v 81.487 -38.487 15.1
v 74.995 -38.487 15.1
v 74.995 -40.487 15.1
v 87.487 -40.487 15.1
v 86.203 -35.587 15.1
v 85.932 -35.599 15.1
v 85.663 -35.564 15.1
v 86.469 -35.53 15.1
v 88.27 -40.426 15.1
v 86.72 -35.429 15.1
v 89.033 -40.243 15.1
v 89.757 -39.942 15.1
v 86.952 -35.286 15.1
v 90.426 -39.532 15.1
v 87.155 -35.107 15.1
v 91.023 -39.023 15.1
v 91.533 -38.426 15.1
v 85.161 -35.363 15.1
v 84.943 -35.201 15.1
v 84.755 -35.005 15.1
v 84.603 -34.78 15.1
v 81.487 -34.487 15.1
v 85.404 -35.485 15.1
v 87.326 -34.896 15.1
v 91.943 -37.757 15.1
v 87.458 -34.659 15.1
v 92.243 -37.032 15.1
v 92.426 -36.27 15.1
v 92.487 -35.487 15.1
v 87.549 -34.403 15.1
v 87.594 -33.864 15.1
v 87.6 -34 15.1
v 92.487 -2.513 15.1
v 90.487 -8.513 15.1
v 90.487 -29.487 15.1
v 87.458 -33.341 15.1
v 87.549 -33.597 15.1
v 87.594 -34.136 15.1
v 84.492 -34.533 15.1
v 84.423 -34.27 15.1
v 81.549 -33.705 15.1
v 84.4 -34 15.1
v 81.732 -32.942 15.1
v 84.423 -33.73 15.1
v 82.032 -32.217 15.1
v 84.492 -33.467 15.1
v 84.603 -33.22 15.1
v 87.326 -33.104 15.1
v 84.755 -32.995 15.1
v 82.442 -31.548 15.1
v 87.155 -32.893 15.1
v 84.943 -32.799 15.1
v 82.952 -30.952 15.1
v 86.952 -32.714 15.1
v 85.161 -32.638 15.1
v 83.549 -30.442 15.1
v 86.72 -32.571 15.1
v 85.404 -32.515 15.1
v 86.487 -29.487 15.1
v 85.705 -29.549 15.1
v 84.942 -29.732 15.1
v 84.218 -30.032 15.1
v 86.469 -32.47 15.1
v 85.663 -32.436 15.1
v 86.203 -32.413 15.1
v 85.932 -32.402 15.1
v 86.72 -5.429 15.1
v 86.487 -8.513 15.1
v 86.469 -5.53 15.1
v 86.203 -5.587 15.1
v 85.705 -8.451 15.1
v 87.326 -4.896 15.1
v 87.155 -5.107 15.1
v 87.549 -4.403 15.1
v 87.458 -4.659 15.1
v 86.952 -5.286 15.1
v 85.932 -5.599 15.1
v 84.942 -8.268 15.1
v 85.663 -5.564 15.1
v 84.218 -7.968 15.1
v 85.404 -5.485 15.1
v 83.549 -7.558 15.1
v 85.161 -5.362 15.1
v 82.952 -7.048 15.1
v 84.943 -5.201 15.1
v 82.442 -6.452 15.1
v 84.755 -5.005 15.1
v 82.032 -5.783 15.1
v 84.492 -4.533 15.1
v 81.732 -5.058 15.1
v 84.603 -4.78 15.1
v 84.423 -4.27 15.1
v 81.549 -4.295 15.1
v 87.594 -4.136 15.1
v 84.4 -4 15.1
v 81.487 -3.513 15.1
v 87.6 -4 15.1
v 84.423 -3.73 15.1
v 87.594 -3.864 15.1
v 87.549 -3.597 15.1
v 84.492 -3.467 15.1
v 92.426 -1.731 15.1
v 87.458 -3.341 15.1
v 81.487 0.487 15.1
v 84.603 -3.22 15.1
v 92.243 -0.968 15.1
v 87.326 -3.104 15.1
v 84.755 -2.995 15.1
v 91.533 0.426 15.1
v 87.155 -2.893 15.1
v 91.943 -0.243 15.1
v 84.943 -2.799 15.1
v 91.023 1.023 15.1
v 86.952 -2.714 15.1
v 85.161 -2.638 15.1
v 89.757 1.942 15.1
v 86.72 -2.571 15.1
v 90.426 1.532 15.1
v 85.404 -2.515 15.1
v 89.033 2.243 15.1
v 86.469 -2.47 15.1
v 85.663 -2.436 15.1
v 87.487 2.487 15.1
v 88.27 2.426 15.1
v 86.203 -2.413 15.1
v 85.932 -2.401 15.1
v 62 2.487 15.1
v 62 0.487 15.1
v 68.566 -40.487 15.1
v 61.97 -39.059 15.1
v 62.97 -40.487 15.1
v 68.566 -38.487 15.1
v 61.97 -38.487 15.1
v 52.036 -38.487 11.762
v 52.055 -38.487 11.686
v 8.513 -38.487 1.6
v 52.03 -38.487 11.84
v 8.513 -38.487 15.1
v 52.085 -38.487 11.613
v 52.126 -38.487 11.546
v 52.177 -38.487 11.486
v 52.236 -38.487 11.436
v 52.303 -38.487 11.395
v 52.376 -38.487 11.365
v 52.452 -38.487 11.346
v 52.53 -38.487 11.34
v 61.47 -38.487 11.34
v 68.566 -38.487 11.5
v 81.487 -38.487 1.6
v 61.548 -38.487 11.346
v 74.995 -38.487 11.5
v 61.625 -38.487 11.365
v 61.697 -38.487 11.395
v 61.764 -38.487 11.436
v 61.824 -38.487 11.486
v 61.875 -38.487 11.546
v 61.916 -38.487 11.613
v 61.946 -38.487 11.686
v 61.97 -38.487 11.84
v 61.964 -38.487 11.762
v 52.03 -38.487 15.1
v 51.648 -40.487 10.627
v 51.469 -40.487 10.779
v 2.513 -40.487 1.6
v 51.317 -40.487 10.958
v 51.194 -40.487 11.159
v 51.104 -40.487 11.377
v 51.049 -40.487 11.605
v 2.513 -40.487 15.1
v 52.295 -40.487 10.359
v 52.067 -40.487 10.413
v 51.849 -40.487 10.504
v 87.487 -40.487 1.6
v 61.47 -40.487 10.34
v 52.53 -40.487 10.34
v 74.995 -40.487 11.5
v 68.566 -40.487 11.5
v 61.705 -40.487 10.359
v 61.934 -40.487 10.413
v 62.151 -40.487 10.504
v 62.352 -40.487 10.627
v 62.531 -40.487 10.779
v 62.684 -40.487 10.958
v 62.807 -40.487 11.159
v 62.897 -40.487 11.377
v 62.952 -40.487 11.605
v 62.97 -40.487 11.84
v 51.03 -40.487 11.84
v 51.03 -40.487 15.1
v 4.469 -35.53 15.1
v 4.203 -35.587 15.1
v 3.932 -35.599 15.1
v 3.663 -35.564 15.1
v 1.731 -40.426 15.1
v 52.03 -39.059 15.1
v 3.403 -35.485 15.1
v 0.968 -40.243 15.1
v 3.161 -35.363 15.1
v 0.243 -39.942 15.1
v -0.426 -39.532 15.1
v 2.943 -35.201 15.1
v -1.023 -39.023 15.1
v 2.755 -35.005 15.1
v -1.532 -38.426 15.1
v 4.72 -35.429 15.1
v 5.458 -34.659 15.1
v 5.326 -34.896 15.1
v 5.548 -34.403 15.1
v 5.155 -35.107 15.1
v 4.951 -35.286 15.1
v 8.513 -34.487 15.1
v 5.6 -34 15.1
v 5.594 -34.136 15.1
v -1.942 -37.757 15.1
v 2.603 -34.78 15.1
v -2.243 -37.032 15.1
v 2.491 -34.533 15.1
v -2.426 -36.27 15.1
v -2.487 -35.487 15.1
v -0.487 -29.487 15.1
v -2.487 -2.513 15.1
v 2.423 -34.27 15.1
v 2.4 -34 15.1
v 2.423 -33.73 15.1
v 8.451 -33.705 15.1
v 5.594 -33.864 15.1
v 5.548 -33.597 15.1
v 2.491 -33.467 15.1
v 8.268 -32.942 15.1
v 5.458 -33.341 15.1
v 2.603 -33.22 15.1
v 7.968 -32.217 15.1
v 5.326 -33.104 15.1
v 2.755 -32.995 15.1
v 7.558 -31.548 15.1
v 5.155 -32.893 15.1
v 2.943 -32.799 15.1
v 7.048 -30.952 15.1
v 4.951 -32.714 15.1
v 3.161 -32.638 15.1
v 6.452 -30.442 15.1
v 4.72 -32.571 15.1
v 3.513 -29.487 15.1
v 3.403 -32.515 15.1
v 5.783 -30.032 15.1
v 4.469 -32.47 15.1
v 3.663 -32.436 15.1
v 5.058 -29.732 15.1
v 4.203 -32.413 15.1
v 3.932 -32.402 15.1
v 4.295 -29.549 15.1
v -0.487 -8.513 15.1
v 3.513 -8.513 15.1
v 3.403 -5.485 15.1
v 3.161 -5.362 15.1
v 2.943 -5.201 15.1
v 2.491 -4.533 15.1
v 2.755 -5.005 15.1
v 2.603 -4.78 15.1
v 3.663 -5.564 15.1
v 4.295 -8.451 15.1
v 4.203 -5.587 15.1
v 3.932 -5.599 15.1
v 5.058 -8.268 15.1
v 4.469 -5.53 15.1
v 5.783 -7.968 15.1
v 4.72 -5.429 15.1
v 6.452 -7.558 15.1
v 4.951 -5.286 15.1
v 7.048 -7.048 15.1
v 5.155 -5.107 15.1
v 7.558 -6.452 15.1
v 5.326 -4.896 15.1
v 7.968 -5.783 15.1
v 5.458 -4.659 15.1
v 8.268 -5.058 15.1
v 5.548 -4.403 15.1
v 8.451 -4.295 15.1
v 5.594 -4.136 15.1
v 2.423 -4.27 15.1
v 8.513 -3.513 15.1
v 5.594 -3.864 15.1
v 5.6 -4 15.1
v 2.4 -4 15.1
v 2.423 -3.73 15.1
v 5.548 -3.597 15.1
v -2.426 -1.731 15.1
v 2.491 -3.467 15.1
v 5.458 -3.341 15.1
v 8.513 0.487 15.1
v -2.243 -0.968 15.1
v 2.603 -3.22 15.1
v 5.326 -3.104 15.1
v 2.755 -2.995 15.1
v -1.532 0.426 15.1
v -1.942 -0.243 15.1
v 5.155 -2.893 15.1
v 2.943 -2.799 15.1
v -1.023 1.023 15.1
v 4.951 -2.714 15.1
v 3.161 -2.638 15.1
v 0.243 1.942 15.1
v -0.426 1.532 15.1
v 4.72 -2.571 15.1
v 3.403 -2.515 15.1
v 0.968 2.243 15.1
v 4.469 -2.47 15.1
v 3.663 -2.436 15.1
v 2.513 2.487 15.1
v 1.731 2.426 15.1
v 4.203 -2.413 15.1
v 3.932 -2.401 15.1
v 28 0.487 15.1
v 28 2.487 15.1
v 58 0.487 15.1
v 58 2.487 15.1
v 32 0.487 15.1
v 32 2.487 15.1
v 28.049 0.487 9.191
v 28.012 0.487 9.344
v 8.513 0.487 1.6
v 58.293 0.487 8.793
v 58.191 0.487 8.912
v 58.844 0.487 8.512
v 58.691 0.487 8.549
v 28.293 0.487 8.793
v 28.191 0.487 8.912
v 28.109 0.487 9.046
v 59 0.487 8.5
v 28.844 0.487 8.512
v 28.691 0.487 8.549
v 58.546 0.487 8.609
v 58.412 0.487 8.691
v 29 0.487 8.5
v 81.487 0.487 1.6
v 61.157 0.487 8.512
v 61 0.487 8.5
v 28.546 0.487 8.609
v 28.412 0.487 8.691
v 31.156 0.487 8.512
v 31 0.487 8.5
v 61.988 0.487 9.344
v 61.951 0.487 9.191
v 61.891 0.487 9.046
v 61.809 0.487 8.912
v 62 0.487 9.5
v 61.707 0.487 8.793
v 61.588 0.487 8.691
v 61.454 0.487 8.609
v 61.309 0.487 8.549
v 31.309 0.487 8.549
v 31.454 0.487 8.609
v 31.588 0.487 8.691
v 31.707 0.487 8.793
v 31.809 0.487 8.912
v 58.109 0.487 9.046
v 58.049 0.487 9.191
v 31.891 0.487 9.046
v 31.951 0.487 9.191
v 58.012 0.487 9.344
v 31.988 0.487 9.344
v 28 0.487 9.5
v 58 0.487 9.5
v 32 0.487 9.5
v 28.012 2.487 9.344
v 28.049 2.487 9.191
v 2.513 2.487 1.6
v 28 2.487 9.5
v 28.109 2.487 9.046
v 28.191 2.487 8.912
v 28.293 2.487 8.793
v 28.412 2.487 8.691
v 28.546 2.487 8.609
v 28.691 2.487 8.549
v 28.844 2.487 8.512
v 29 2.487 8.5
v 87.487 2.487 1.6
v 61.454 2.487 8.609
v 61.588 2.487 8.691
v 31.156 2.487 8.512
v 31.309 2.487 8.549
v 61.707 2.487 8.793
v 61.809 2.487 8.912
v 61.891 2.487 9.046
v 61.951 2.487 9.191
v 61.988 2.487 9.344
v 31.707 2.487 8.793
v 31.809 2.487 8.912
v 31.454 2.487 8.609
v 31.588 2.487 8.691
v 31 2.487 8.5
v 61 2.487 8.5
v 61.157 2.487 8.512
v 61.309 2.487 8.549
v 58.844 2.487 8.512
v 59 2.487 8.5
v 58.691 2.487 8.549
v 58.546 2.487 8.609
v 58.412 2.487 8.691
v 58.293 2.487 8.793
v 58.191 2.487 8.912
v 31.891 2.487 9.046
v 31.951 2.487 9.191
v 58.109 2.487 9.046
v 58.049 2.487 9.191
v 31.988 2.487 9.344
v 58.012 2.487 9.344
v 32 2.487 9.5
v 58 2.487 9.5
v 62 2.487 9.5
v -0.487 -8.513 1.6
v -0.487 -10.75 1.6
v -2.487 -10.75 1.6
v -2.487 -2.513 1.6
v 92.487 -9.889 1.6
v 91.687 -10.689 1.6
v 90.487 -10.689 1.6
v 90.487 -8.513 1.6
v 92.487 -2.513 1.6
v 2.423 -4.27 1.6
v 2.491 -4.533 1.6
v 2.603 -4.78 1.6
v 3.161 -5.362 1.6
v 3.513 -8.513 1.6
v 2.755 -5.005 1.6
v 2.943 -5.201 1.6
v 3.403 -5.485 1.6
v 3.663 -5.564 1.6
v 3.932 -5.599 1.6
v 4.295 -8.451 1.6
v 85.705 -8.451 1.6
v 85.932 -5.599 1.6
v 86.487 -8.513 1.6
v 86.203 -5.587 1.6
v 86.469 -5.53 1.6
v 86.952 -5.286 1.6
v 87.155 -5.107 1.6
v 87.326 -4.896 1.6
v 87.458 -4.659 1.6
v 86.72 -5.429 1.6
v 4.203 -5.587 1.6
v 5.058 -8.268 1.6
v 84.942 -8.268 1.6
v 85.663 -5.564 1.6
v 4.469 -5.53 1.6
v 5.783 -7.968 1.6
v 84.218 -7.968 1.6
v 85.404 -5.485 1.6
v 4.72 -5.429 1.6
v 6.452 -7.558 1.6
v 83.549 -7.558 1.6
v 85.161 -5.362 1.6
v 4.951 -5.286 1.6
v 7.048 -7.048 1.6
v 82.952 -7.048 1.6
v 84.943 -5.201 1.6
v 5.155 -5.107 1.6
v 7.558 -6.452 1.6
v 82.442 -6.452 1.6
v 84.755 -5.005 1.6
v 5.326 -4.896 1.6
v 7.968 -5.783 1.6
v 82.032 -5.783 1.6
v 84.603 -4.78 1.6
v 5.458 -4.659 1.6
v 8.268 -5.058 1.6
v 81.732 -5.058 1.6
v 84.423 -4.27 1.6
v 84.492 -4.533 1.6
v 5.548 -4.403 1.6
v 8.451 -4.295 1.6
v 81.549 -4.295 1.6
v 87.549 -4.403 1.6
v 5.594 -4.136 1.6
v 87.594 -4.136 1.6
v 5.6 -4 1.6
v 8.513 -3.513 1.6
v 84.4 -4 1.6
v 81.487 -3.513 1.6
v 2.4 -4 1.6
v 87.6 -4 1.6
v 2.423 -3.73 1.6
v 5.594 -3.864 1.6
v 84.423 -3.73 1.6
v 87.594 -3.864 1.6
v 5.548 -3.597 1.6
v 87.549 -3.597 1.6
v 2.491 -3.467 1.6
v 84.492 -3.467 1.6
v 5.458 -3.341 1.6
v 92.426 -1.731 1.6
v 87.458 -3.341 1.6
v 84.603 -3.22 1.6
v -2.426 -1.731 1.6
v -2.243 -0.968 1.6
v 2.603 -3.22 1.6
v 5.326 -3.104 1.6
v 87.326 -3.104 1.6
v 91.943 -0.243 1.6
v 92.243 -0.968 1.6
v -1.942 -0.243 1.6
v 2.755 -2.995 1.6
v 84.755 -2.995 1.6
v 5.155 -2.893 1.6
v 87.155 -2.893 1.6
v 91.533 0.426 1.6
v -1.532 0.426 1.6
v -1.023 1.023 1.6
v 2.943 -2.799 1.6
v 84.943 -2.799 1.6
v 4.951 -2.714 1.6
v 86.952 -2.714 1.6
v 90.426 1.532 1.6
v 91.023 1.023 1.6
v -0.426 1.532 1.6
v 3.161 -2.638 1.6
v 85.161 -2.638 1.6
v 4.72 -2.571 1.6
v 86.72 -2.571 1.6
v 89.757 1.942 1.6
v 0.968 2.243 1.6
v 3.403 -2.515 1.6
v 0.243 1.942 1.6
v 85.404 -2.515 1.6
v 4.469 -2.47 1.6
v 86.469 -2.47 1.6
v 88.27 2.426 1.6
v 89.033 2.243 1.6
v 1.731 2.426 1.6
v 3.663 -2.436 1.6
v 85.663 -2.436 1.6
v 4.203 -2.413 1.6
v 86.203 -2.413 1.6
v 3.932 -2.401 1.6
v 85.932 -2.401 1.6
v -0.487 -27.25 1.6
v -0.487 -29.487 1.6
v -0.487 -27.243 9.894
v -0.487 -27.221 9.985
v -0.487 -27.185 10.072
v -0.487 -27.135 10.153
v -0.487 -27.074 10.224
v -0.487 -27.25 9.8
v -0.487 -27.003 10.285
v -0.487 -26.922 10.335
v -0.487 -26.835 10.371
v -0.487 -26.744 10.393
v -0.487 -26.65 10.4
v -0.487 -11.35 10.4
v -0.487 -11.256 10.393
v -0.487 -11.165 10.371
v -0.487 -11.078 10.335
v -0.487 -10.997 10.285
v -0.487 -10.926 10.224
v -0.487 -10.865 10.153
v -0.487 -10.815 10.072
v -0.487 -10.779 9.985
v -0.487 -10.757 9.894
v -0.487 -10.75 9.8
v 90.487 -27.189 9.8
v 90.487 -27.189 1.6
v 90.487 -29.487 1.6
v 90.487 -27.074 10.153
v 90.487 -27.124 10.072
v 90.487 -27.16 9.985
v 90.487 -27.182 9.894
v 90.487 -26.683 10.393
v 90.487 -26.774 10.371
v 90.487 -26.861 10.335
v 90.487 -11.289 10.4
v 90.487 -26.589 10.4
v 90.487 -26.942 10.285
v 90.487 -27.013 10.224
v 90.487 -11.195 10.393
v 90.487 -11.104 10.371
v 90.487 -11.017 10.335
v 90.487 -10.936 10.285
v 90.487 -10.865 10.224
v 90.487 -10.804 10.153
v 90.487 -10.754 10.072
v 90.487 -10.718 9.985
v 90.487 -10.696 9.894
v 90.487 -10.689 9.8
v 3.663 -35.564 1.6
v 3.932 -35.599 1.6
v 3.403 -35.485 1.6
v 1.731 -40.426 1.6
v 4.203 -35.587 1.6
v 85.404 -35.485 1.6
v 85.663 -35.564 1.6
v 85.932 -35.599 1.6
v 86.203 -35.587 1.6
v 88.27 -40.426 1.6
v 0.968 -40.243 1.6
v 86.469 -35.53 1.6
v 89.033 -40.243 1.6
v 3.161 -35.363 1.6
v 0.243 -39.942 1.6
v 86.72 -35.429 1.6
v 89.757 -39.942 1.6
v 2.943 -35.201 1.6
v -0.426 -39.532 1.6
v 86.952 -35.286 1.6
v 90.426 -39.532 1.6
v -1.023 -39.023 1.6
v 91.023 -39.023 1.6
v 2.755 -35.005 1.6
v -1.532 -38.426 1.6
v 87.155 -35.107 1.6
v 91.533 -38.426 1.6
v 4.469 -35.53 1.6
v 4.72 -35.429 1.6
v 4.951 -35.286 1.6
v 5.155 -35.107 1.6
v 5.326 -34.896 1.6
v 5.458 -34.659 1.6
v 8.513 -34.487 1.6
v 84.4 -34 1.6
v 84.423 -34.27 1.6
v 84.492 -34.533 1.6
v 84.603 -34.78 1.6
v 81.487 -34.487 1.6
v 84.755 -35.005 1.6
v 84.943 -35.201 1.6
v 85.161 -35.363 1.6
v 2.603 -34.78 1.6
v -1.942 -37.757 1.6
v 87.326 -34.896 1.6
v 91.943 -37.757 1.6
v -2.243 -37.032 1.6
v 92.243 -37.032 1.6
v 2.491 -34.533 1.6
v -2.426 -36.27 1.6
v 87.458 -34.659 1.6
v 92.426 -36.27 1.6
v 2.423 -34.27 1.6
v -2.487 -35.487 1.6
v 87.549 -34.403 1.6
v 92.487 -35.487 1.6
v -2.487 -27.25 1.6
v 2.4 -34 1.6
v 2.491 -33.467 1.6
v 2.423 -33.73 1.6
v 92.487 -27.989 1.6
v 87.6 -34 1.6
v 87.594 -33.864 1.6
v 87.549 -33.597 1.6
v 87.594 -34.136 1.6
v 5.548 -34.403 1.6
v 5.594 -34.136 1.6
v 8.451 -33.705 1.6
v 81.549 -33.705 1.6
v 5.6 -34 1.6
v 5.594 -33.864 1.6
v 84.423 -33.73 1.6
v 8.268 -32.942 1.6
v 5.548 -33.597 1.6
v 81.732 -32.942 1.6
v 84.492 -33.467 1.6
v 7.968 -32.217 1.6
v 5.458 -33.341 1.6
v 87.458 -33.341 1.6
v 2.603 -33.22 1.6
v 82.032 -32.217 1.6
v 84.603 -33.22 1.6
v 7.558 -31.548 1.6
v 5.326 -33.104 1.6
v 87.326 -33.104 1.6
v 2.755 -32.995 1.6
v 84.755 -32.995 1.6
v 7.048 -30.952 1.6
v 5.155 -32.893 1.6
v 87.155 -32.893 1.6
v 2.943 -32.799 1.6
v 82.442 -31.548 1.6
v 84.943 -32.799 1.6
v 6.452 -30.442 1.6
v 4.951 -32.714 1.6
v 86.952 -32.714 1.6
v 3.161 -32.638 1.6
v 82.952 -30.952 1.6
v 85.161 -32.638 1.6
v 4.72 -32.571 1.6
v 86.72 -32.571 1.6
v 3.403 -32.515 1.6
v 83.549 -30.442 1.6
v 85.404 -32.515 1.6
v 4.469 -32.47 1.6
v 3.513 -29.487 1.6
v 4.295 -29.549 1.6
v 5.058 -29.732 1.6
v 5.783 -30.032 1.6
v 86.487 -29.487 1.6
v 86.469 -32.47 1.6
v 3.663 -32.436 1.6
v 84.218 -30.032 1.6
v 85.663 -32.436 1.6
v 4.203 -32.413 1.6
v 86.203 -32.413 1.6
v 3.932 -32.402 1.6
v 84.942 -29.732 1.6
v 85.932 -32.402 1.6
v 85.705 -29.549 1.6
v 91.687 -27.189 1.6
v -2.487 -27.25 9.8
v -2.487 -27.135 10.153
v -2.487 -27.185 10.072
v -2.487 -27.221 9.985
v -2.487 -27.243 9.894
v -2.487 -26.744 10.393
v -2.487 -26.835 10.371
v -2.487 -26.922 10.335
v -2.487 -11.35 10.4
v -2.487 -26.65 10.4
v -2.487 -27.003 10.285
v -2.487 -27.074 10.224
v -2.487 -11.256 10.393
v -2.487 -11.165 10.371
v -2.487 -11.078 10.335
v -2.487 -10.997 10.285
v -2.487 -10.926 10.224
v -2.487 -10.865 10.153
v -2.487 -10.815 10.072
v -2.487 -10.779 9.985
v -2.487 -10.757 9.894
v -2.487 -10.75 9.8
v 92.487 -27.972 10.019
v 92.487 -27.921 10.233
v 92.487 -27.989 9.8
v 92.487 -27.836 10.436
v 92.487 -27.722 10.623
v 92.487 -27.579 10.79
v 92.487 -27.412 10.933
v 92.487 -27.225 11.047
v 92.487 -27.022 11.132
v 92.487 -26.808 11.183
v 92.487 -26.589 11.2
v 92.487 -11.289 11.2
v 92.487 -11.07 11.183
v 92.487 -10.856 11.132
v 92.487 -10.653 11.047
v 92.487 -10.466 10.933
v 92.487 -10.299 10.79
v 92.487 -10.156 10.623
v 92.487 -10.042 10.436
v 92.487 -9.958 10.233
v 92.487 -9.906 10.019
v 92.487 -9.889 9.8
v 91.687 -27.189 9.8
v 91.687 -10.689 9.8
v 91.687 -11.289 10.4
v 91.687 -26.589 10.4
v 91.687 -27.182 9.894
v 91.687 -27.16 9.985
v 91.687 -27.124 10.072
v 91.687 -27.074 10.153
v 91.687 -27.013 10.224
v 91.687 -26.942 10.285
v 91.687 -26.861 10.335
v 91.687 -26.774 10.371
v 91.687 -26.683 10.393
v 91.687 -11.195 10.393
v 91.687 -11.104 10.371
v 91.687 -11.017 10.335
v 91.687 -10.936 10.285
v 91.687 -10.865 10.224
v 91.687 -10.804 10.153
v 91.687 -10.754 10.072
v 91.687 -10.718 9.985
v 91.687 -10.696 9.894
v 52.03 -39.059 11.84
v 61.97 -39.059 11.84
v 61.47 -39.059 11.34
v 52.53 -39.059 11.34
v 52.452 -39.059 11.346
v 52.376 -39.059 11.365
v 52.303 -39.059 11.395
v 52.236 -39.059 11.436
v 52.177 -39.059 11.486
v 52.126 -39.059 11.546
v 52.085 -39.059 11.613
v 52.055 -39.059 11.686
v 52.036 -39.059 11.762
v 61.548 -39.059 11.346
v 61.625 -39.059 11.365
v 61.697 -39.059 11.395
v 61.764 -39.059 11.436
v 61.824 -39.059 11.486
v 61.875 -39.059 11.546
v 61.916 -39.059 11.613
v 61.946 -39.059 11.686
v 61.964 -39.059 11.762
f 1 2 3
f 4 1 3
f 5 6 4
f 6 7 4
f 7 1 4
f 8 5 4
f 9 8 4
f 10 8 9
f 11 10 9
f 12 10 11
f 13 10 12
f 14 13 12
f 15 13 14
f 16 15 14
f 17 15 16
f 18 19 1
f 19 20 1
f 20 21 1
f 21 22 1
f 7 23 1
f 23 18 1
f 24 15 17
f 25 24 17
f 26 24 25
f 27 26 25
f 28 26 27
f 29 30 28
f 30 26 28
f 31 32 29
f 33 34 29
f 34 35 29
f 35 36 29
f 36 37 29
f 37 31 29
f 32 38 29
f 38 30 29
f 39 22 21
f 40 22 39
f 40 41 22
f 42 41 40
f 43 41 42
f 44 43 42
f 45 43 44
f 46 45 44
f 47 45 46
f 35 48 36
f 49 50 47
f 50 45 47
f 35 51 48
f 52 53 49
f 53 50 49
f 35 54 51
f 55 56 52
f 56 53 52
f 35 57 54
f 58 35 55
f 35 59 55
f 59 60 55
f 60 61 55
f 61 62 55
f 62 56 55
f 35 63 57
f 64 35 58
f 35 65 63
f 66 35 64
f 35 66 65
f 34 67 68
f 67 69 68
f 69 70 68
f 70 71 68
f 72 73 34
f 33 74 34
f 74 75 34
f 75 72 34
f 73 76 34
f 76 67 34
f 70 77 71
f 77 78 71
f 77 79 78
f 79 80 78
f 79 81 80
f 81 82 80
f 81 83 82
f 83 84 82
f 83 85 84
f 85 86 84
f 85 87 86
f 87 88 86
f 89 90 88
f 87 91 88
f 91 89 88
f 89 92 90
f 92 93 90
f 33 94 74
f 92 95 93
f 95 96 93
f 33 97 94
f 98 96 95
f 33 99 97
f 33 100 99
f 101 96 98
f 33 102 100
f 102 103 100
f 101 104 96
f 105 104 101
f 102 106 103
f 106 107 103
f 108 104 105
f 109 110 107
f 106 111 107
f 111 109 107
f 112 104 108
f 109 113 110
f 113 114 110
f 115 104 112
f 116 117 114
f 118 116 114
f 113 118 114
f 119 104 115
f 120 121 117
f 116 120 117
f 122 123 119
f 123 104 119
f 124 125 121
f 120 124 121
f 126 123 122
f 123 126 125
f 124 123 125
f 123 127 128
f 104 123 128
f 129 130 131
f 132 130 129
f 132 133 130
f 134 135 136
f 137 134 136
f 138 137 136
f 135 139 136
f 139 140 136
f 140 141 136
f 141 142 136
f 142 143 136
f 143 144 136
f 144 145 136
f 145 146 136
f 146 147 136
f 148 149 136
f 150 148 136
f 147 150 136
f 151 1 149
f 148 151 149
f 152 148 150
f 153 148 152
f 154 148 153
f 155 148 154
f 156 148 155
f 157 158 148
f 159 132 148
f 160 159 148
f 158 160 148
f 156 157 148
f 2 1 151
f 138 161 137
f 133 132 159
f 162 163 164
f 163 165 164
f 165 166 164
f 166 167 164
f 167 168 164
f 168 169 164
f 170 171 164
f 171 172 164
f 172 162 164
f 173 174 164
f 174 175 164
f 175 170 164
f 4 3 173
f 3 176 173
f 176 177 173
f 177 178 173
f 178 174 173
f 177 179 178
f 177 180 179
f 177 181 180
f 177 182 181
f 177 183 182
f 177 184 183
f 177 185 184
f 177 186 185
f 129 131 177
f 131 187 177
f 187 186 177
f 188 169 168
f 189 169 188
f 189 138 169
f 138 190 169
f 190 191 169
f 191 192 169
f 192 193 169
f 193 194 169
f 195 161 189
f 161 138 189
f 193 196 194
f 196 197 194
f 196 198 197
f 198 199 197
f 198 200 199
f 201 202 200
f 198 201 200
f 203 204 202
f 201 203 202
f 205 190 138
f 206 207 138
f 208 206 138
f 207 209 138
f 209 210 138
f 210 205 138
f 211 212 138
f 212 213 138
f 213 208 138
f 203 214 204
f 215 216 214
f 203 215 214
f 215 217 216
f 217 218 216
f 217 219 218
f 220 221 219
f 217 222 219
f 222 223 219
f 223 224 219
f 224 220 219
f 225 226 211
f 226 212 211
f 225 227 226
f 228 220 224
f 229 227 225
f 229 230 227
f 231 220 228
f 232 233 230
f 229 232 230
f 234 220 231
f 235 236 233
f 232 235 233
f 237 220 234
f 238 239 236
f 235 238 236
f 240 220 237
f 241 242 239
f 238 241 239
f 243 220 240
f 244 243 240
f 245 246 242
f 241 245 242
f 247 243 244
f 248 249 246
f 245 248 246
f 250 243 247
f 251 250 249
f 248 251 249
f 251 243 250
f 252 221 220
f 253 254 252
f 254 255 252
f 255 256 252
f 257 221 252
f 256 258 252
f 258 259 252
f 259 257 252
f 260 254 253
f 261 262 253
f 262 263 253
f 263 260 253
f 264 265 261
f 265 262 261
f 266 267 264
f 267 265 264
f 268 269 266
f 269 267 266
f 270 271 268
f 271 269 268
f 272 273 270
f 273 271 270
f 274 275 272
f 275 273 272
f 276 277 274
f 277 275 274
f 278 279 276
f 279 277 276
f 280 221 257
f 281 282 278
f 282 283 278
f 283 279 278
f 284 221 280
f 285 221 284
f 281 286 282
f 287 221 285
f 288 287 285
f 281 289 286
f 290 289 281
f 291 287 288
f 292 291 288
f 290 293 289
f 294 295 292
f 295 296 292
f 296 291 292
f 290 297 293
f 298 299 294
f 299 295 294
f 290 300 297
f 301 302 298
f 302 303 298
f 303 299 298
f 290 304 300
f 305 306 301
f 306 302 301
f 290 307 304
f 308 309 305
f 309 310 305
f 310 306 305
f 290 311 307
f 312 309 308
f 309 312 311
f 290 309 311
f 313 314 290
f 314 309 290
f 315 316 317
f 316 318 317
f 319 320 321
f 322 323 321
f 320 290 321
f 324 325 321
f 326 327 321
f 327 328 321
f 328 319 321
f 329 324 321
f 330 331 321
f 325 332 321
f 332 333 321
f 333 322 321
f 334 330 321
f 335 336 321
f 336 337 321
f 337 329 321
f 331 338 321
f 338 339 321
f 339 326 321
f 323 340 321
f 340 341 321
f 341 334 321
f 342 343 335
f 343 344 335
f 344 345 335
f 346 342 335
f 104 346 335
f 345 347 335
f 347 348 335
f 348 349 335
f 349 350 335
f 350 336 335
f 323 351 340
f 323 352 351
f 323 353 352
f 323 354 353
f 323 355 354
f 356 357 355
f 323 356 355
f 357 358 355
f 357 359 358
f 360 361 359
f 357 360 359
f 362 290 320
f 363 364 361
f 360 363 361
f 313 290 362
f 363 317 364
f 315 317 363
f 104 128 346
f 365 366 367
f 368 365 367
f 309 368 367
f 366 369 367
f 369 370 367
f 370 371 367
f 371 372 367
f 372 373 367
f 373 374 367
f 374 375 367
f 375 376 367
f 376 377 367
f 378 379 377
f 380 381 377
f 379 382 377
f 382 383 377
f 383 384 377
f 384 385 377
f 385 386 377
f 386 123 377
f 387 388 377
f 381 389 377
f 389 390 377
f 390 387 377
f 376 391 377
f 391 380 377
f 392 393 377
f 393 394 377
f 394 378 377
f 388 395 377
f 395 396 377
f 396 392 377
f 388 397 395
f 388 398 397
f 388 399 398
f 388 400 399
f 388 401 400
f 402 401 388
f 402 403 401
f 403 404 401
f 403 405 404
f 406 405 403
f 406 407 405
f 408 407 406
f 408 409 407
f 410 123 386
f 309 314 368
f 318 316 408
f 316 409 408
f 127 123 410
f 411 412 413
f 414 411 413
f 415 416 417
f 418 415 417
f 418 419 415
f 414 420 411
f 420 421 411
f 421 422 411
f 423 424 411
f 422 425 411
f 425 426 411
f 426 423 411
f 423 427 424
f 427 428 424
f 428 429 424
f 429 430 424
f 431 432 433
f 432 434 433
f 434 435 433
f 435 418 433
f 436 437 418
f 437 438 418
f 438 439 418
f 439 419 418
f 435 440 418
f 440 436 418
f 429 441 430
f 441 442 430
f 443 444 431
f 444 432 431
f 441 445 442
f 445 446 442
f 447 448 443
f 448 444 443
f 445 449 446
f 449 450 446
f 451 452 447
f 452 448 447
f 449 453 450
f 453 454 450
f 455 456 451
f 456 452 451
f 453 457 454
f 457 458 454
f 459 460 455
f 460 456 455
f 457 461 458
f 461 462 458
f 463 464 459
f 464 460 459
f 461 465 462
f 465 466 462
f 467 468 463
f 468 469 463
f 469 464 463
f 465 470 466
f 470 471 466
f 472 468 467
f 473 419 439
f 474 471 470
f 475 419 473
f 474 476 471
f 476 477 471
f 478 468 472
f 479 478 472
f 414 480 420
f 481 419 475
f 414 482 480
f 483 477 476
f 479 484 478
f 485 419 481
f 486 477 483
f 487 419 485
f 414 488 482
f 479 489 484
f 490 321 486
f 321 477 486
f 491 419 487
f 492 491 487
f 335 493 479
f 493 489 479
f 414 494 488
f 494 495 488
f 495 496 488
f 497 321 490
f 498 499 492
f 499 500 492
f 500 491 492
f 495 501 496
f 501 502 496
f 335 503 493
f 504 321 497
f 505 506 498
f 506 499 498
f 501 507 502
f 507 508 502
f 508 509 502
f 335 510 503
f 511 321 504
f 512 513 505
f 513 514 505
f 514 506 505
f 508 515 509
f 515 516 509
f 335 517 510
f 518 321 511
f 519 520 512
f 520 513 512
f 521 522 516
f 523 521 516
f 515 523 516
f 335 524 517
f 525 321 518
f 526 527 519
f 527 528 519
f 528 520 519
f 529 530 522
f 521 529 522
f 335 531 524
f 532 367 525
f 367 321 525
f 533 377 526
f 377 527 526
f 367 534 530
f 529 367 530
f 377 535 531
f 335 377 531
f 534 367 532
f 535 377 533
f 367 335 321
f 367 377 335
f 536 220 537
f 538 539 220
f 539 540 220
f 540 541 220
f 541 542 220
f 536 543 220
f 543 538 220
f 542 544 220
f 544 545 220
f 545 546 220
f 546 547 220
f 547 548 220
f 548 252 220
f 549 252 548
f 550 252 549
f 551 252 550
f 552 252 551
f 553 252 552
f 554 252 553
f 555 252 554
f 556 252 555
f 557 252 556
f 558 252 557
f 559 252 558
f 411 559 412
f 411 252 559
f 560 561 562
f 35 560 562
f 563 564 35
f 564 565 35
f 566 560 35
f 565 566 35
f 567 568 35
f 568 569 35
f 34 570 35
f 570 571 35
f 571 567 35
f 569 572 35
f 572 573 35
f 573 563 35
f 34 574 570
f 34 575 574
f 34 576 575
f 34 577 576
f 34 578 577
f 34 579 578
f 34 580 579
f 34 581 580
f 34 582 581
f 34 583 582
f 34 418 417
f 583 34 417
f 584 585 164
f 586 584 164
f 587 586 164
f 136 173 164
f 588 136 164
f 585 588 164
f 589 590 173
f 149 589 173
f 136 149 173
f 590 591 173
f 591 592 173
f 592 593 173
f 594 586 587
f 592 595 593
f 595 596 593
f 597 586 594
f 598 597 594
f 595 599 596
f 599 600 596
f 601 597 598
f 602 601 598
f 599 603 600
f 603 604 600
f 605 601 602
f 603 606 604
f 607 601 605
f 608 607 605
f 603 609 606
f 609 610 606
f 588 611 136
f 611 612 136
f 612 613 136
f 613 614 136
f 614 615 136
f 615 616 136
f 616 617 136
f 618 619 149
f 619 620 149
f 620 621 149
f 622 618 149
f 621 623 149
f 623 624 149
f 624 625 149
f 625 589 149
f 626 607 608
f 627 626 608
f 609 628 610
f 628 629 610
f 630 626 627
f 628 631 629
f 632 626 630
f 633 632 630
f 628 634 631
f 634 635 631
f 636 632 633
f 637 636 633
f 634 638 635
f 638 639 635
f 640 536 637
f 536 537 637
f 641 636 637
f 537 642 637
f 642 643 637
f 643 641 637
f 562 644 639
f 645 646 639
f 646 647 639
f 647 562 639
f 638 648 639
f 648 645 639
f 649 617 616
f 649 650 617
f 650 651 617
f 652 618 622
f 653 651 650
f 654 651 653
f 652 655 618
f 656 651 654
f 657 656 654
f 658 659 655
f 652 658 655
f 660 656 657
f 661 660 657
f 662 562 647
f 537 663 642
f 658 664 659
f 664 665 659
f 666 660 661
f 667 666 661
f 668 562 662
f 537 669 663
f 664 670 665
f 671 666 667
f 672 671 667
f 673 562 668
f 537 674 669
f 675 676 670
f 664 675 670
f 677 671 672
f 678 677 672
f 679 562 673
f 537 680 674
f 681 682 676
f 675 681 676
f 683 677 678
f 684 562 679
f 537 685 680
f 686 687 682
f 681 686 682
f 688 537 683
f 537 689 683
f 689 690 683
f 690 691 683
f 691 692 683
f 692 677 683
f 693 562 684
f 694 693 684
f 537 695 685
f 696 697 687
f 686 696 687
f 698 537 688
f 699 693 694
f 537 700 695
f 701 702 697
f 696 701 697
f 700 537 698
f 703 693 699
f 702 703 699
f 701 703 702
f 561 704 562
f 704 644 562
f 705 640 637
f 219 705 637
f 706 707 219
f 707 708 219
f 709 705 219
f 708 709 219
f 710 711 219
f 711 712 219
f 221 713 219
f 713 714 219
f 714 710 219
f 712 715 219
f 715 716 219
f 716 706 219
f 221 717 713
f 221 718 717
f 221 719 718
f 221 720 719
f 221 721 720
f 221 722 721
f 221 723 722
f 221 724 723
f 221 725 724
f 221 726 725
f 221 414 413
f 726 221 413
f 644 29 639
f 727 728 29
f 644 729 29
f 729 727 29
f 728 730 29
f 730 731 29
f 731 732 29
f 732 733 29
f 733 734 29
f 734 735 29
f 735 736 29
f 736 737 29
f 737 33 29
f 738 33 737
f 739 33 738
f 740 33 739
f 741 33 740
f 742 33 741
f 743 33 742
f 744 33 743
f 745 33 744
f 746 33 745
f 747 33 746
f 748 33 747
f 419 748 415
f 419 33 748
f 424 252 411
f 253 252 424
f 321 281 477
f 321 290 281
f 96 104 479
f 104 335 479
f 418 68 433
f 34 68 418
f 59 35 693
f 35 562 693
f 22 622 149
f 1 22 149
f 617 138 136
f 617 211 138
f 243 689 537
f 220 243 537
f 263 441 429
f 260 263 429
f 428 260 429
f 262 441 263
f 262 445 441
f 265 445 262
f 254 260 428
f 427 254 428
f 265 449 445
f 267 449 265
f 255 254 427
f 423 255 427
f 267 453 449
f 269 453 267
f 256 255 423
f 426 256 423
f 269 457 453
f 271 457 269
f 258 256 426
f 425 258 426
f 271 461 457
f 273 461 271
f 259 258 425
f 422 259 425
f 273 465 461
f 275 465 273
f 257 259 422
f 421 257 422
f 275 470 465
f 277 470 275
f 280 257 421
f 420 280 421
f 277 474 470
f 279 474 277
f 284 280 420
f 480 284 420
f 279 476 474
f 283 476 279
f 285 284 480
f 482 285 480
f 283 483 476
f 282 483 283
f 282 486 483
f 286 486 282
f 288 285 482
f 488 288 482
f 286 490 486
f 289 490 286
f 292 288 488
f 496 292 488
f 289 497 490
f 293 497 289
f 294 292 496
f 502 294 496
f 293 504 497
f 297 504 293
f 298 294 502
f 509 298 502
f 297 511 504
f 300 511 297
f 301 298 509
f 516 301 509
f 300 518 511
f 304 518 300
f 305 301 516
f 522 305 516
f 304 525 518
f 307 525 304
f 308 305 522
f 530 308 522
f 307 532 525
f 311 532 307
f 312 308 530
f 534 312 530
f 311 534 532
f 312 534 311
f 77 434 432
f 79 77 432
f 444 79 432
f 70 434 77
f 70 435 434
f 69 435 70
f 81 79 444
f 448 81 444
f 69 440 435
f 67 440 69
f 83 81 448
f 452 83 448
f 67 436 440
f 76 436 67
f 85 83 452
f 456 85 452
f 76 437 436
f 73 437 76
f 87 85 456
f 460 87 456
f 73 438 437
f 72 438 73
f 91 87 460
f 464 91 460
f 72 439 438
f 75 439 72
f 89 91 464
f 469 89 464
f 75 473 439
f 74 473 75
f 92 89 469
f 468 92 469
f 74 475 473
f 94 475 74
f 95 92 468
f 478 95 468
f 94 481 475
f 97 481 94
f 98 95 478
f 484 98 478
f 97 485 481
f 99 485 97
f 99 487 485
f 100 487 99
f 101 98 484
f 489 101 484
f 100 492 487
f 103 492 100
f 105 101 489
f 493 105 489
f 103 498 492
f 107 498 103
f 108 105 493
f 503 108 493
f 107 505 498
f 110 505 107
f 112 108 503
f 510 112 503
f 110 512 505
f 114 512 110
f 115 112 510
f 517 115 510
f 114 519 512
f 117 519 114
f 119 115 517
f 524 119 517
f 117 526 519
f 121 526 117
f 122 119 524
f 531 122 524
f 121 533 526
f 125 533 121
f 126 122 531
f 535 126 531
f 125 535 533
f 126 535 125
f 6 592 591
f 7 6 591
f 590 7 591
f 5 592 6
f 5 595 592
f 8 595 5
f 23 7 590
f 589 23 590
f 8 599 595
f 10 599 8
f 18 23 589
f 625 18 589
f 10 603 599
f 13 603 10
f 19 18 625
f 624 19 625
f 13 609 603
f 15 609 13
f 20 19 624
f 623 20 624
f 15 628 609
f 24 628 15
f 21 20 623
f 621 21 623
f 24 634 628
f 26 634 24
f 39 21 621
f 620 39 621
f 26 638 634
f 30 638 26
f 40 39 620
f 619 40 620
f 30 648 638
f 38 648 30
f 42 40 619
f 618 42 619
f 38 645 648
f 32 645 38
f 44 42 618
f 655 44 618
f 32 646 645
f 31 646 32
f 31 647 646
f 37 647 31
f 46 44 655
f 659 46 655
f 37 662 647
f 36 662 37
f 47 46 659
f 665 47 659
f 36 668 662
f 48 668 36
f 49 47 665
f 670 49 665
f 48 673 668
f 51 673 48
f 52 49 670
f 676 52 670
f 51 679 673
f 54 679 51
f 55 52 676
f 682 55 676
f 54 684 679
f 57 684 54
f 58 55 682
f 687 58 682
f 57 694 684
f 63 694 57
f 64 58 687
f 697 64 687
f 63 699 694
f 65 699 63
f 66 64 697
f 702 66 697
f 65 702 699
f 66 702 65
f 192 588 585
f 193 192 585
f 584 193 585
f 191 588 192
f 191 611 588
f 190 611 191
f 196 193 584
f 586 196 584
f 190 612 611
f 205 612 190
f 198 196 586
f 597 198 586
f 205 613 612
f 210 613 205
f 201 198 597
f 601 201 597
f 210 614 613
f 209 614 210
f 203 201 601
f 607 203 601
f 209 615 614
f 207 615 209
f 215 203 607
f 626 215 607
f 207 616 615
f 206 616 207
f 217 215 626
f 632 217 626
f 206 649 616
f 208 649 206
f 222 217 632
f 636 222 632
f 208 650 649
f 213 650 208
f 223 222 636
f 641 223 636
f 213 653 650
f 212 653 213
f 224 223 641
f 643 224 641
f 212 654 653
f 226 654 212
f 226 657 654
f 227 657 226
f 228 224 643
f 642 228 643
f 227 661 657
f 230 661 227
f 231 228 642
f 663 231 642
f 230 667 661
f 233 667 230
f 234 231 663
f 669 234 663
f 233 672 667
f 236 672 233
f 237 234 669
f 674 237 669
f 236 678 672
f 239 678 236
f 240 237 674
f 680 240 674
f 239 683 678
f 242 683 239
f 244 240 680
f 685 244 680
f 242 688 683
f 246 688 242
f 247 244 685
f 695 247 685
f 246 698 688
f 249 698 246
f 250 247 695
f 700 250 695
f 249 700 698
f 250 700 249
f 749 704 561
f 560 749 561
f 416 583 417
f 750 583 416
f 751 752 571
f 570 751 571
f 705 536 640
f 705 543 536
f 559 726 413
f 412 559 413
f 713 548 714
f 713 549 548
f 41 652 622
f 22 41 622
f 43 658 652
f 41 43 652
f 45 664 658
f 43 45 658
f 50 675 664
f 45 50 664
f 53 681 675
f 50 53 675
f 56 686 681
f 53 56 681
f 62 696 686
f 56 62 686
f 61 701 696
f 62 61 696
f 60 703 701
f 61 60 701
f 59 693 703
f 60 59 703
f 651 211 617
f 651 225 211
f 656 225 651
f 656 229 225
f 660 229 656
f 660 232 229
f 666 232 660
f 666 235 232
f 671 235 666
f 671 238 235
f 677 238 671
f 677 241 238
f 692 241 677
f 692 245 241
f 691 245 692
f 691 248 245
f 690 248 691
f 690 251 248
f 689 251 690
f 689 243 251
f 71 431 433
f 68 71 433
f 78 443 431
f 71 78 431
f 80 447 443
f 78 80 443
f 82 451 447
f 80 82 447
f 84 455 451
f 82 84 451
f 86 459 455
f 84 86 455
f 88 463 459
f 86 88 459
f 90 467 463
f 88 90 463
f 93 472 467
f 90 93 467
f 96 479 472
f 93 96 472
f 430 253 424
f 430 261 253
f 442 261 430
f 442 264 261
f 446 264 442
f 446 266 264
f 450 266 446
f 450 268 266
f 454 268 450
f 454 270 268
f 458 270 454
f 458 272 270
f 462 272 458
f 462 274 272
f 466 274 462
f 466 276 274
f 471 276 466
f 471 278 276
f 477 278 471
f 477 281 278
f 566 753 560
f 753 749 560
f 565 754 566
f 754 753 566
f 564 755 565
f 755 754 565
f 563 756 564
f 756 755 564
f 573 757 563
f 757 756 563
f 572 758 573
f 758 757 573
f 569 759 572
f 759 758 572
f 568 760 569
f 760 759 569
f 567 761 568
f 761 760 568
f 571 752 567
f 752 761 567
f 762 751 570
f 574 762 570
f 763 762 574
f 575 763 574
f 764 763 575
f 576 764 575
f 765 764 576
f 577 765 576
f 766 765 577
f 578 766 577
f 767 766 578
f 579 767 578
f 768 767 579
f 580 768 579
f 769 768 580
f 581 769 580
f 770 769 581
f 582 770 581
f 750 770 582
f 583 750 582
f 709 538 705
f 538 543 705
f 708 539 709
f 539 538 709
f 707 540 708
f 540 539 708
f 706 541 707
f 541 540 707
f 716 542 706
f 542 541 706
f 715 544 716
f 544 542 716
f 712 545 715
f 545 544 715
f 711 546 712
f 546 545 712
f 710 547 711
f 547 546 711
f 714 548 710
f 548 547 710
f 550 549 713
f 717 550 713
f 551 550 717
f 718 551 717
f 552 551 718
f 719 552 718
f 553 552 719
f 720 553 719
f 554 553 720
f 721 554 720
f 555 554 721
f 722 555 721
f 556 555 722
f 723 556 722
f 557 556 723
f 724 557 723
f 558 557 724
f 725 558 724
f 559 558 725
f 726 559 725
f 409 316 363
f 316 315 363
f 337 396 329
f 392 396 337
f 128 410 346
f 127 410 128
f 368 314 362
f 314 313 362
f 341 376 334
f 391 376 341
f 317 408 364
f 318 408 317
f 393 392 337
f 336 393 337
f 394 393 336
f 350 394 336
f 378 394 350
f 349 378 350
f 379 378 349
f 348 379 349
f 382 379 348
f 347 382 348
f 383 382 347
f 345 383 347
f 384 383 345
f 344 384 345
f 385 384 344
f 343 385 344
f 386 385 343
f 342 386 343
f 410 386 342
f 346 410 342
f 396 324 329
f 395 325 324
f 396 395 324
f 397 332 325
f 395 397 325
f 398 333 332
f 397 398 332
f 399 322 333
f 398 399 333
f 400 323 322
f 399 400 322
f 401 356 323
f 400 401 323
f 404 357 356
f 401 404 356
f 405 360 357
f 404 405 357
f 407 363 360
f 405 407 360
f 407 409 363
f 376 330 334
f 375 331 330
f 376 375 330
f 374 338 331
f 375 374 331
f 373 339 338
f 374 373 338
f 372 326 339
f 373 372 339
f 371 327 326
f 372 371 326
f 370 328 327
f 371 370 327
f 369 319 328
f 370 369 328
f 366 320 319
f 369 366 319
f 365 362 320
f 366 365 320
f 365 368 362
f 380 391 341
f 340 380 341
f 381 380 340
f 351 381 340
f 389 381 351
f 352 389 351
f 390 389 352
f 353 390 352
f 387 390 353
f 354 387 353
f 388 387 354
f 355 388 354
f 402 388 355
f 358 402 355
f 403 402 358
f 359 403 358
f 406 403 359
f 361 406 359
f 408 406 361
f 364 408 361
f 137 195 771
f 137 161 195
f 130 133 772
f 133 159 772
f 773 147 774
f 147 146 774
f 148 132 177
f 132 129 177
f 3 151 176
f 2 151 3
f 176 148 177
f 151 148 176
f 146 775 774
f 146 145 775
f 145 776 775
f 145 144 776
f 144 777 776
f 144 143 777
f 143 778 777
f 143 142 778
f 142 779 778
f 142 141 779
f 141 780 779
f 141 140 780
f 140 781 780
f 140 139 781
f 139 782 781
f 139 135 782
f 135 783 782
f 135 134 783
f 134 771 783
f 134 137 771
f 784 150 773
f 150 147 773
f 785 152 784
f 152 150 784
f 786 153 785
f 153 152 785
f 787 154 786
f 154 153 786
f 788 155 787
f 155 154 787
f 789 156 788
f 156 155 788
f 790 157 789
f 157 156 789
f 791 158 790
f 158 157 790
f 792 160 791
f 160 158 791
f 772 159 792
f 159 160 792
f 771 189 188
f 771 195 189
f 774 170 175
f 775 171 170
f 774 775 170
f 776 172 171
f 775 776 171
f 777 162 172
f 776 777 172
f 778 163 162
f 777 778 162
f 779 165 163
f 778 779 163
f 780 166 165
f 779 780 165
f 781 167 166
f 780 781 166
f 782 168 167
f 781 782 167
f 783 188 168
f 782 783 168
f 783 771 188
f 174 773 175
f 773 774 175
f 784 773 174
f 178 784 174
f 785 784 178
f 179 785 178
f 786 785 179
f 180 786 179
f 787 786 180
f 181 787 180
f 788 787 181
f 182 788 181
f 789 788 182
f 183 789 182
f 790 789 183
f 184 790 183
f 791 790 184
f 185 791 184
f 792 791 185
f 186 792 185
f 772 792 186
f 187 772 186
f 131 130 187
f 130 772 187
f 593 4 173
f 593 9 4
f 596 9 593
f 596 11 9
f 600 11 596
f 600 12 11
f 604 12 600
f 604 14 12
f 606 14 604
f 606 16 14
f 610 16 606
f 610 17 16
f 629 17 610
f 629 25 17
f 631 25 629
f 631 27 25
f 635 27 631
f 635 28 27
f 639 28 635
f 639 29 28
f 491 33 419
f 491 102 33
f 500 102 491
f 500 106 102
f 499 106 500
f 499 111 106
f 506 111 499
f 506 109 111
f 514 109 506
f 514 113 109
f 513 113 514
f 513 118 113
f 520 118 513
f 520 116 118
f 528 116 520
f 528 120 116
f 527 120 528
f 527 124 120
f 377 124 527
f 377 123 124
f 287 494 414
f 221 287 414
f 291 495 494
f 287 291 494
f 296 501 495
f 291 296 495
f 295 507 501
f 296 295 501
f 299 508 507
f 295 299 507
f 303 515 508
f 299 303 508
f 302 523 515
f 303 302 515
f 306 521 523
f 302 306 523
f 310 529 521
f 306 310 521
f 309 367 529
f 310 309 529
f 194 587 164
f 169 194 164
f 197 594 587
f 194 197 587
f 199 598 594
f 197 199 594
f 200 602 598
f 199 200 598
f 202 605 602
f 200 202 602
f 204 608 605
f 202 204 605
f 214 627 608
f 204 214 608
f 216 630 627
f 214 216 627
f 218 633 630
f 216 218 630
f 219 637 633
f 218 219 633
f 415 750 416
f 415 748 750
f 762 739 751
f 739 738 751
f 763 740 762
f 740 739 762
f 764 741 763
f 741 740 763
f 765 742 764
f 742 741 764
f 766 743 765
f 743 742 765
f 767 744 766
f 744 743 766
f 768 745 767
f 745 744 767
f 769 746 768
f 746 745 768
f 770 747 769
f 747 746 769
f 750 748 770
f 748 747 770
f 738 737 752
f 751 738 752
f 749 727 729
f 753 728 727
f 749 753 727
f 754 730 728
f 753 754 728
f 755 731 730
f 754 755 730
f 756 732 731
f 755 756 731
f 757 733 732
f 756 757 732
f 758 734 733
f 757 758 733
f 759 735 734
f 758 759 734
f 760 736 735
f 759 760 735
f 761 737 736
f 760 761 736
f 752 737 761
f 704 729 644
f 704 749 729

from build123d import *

# Parameters (mm, degrees)
SKETCH_1_W          = 94.97478029
SKETCH_1_H          = 42.97467615
SKETCH_1_W_2        = 90.97478029
SKETCH_1_H_2        = 38.97467615
EXTRUDE_1_DEPTH     = 13.5
SKETCH_2_W          = 9
SKETCH_2_H          = 9
EXTRUDE_2_DEPTH     = 13.5
SKETCH_3_R          = 1.6
CUT_EXTRUDE_1_DEPTH = 13.5
SKETCH_4_W          = 2
SKETCH_4_H          = 16.5
CUT_EXTRUDE_2_DEPTH = 8.8
FILLET_1_R          = 5
FILLET_2_R          = 0.6
SKETCH_5_W          = 4
SKETCH_5_H          = 6.600000242
CUT_EXTRUDE_3_DEPTH = 2
FILLET_3_R          = 1
SKETCH_6_W          = 6.428772381
SKETCH_6_H          = 3.6
SKETCH_6_W_2        = 9.94
SKETCH_6_H_2        = 3.75999995
CUT_EXTRUDE_4_DEPTH = 2
FILLET_4_R          = 0.5
CHAMFER_1_SIZE      = 1
CHAMFER_1_SIZE2     = 1.428148007
FILLET_5_R          = 5
CHAMFER_2_SIZE      = 0.8


with BuildPart() as part:
    # 草图1 → 凸台-拉伸1 (new body)
    with BuildSketch(Plane.XY.offset(1.6000508)):
        with Locations((45.00009017, -19.0000381)):
            Rectangle(SKETCH_1_W, SKETCH_1_H)
        with Locations((45.00009017, -19.0000381)):
            Rectangle(SKETCH_1_W_2, SKETCH_1_H_2, mode=Mode.SUBTRACT)
    extrude(amount=EXTRUDE_1_DEPTH)

    # 草图2 → 凸台-拉伸2 (add)
    with BuildSketch(Plane.XY.offset(1.6000508)):
        with Locations((4.012700025, -4.012700025)):
            Rectangle(SKETCH_2_W, SKETCH_2_H)
        with Locations((85.987480315, -4.012700025)):
            Rectangle(SKETCH_2_W, SKETCH_2_H)
        with Locations((4.012700025, -33.987376175)):
            Rectangle(SKETCH_2_W, SKETCH_2_H)
        with Locations((85.987480315, -33.987376175)):
            Rectangle(SKETCH_2_W, SKETCH_2_H)
    extrude(amount=EXTRUDE_2_DEPTH)

    # 草图3 → 切除-拉伸1 (cut)
    with BuildSketch(Plane.XY.offset(1.6000508)):
        with Locations((4.00000762, -4.00000762)):
            Circle(SKETCH_3_R)
        with Locations((86.00017272, -4.00000762)):
            Circle(SKETCH_3_R)
        with Locations((86.00017272, -34.00006858)):
            Circle(SKETCH_3_R)
        with Locations((4.00000762, -34.00006858)):
            Circle(SKETCH_3_R)
    extrude(amount=CUT_EXTRUDE_1_DEPTH, mode=Mode.SUBTRACT)

    # 草图4 → 切除-拉伸2 (cut)
    with BuildSketch(Plane.XY.offset(1.6000508)):
        with Locations((-1.487299975, -18.9999873)):
            Rectangle(SKETCH_4_W, SKETCH_4_H)
        with Locations((91.487480315, -18.939077978)):
            Rectangle(SKETCH_4_W, SKETCH_4_H)
    extrude(amount=CUT_EXTRUDE_2_DEPTH, mode=Mode.SUBTRACT)

    # 圆角1
    fillet_1_edges = [part.edges().sort_by_distance(p)[0] for p in [
        (81.487480315, -8.512700025, 8.3500508),
        (8.512700025, -29.487376175, 8.3500508),
        (81.487480315, -29.487376175, 8.3500508),
        (8.512700025, -8.512700025, 8.3500508),
    ]]
    fillet(fillet_1_edges, radius=FILLET_1_R)

    # 圆角2
    fillet_2_edges = [part.edges().sort_by_distance(p)[0] for p in [
        (-1.487299975, -27.2499873, 10.4000508),
        (-1.487299975, -10.7499873, 10.4000508),
        (91.487480315, -27.189077978, 10.4000508),
        (91.487480315, -10.689077978, 10.4000508),
    ]]
    fillet(fillet_2_edges, radius=FILLET_2_R)

    # 草图5 → 切除-拉伸3 (cut)
    with BuildSketch(Plane(origin=(0, 2.487299975, 0), x_dir=(1, 0, 0), z_dir=(0, 1, 0))):
        with Locations((30.00006096, -11.800050679)):
            Rectangle(SKETCH_5_W, SKETCH_5_H)
        with Locations((60.00011938, -11.800050679)):
            Rectangle(SKETCH_5_W, SKETCH_5_H)
    extrude(amount=-CUT_EXTRUDE_3_DEPTH, mode=Mode.SUBTRACT)

    # 圆角3
    fillet_3_edges = [part.edges().sort_by_distance(p)[0] for p in [
        (28.00006096, 1.487299975, 8.500050558),
        (32.00006096, 1.487299975, 8.500050558),
        (58.00011938, 1.487299975, 8.500050558),
        (62.00011938, 1.487299975, 8.500050558),
    ]]
    fillet(fillet_3_edges, radius=FILLET_3_R)

    # 草图6 → 切除-拉伸4 (cut)
    with BuildSketch(Plane.XZ.offset(40.487376175)):
        with Locations((71.78078399, 13.3000508)):
            Rectangle(SKETCH_6_W, SKETCH_6_H)
        with Locations((57.0001143, 13.220050825)):
            Rectangle(SKETCH_6_W_2, SKETCH_6_H_2)
    extrude(amount=-CUT_EXTRUDE_4_DEPTH, mode=Mode.SUBTRACT)

    # 圆角4
    fillet_4_edges = [part.edges().sort_by_distance(p)[0] for p in [
        (52.0301143, -39.487376175, 11.34005085),
        (61.9701143, -39.487376175, 11.34005085),
    ]]
    fillet(fillet_4_edges, radius=FILLET_4_R)

    # 倒角1
    chamfer_1_edges = [part.edges().sort_by_distance(p)[0] for p in [
        (52.0301143, -40.487376175, 13.470050825),
        (57.0001143, -40.487376175, 11.34005085),
        (61.9701143, -40.487376175, 13.470050825),
        (52.17656091, -40.487376175, 11.48649746),
        (61.823667691, -40.487376175, 11.48649746),
    ]]
    chamfer_1_side = [part.faces().sort_by_distance(p)[0] for p in [
        (44.12674601, -40.487376175, 8.107577696),
    ]]
    chamfer(chamfer_1_edges, length=CHAMFER_1_SIZE, length2=CHAMFER_1_SIZE2, reference=chamfer_1_side[0])

    # 圆角5
    fillet_5_edges = [part.edges().sort_by_distance(p)[0] for p in [
        (-2.487299975, 2.487299975, 8.3500508),
        (92.487480315, 2.487299975, 8.3500508),
        (92.487480315, -40.487376175, 8.3500508),
        (-2.487299975, -40.487376175, 8.3500508),
    ]]
    fillet(fillet_5_edges, radius=FILLET_5_R)

    # 倒角2
    chamfer_2_edges = [part.edges().sort_by_distance(p)[0] for p in [
        (92.487480315, -27.189077978, 5.7000508),
        (92.487480315, -18.939077978, 10.4000508),
        (92.487480315, -10.689077978, 5.7000508),
        (92.487480315, -27.013342047, 10.224314869),
        (92.487480315, -10.864813909, 10.224314869),
    ]]
    chamfer(chamfer_2_edges, length=CHAMFER_2_SIZE)


solid = part.part
